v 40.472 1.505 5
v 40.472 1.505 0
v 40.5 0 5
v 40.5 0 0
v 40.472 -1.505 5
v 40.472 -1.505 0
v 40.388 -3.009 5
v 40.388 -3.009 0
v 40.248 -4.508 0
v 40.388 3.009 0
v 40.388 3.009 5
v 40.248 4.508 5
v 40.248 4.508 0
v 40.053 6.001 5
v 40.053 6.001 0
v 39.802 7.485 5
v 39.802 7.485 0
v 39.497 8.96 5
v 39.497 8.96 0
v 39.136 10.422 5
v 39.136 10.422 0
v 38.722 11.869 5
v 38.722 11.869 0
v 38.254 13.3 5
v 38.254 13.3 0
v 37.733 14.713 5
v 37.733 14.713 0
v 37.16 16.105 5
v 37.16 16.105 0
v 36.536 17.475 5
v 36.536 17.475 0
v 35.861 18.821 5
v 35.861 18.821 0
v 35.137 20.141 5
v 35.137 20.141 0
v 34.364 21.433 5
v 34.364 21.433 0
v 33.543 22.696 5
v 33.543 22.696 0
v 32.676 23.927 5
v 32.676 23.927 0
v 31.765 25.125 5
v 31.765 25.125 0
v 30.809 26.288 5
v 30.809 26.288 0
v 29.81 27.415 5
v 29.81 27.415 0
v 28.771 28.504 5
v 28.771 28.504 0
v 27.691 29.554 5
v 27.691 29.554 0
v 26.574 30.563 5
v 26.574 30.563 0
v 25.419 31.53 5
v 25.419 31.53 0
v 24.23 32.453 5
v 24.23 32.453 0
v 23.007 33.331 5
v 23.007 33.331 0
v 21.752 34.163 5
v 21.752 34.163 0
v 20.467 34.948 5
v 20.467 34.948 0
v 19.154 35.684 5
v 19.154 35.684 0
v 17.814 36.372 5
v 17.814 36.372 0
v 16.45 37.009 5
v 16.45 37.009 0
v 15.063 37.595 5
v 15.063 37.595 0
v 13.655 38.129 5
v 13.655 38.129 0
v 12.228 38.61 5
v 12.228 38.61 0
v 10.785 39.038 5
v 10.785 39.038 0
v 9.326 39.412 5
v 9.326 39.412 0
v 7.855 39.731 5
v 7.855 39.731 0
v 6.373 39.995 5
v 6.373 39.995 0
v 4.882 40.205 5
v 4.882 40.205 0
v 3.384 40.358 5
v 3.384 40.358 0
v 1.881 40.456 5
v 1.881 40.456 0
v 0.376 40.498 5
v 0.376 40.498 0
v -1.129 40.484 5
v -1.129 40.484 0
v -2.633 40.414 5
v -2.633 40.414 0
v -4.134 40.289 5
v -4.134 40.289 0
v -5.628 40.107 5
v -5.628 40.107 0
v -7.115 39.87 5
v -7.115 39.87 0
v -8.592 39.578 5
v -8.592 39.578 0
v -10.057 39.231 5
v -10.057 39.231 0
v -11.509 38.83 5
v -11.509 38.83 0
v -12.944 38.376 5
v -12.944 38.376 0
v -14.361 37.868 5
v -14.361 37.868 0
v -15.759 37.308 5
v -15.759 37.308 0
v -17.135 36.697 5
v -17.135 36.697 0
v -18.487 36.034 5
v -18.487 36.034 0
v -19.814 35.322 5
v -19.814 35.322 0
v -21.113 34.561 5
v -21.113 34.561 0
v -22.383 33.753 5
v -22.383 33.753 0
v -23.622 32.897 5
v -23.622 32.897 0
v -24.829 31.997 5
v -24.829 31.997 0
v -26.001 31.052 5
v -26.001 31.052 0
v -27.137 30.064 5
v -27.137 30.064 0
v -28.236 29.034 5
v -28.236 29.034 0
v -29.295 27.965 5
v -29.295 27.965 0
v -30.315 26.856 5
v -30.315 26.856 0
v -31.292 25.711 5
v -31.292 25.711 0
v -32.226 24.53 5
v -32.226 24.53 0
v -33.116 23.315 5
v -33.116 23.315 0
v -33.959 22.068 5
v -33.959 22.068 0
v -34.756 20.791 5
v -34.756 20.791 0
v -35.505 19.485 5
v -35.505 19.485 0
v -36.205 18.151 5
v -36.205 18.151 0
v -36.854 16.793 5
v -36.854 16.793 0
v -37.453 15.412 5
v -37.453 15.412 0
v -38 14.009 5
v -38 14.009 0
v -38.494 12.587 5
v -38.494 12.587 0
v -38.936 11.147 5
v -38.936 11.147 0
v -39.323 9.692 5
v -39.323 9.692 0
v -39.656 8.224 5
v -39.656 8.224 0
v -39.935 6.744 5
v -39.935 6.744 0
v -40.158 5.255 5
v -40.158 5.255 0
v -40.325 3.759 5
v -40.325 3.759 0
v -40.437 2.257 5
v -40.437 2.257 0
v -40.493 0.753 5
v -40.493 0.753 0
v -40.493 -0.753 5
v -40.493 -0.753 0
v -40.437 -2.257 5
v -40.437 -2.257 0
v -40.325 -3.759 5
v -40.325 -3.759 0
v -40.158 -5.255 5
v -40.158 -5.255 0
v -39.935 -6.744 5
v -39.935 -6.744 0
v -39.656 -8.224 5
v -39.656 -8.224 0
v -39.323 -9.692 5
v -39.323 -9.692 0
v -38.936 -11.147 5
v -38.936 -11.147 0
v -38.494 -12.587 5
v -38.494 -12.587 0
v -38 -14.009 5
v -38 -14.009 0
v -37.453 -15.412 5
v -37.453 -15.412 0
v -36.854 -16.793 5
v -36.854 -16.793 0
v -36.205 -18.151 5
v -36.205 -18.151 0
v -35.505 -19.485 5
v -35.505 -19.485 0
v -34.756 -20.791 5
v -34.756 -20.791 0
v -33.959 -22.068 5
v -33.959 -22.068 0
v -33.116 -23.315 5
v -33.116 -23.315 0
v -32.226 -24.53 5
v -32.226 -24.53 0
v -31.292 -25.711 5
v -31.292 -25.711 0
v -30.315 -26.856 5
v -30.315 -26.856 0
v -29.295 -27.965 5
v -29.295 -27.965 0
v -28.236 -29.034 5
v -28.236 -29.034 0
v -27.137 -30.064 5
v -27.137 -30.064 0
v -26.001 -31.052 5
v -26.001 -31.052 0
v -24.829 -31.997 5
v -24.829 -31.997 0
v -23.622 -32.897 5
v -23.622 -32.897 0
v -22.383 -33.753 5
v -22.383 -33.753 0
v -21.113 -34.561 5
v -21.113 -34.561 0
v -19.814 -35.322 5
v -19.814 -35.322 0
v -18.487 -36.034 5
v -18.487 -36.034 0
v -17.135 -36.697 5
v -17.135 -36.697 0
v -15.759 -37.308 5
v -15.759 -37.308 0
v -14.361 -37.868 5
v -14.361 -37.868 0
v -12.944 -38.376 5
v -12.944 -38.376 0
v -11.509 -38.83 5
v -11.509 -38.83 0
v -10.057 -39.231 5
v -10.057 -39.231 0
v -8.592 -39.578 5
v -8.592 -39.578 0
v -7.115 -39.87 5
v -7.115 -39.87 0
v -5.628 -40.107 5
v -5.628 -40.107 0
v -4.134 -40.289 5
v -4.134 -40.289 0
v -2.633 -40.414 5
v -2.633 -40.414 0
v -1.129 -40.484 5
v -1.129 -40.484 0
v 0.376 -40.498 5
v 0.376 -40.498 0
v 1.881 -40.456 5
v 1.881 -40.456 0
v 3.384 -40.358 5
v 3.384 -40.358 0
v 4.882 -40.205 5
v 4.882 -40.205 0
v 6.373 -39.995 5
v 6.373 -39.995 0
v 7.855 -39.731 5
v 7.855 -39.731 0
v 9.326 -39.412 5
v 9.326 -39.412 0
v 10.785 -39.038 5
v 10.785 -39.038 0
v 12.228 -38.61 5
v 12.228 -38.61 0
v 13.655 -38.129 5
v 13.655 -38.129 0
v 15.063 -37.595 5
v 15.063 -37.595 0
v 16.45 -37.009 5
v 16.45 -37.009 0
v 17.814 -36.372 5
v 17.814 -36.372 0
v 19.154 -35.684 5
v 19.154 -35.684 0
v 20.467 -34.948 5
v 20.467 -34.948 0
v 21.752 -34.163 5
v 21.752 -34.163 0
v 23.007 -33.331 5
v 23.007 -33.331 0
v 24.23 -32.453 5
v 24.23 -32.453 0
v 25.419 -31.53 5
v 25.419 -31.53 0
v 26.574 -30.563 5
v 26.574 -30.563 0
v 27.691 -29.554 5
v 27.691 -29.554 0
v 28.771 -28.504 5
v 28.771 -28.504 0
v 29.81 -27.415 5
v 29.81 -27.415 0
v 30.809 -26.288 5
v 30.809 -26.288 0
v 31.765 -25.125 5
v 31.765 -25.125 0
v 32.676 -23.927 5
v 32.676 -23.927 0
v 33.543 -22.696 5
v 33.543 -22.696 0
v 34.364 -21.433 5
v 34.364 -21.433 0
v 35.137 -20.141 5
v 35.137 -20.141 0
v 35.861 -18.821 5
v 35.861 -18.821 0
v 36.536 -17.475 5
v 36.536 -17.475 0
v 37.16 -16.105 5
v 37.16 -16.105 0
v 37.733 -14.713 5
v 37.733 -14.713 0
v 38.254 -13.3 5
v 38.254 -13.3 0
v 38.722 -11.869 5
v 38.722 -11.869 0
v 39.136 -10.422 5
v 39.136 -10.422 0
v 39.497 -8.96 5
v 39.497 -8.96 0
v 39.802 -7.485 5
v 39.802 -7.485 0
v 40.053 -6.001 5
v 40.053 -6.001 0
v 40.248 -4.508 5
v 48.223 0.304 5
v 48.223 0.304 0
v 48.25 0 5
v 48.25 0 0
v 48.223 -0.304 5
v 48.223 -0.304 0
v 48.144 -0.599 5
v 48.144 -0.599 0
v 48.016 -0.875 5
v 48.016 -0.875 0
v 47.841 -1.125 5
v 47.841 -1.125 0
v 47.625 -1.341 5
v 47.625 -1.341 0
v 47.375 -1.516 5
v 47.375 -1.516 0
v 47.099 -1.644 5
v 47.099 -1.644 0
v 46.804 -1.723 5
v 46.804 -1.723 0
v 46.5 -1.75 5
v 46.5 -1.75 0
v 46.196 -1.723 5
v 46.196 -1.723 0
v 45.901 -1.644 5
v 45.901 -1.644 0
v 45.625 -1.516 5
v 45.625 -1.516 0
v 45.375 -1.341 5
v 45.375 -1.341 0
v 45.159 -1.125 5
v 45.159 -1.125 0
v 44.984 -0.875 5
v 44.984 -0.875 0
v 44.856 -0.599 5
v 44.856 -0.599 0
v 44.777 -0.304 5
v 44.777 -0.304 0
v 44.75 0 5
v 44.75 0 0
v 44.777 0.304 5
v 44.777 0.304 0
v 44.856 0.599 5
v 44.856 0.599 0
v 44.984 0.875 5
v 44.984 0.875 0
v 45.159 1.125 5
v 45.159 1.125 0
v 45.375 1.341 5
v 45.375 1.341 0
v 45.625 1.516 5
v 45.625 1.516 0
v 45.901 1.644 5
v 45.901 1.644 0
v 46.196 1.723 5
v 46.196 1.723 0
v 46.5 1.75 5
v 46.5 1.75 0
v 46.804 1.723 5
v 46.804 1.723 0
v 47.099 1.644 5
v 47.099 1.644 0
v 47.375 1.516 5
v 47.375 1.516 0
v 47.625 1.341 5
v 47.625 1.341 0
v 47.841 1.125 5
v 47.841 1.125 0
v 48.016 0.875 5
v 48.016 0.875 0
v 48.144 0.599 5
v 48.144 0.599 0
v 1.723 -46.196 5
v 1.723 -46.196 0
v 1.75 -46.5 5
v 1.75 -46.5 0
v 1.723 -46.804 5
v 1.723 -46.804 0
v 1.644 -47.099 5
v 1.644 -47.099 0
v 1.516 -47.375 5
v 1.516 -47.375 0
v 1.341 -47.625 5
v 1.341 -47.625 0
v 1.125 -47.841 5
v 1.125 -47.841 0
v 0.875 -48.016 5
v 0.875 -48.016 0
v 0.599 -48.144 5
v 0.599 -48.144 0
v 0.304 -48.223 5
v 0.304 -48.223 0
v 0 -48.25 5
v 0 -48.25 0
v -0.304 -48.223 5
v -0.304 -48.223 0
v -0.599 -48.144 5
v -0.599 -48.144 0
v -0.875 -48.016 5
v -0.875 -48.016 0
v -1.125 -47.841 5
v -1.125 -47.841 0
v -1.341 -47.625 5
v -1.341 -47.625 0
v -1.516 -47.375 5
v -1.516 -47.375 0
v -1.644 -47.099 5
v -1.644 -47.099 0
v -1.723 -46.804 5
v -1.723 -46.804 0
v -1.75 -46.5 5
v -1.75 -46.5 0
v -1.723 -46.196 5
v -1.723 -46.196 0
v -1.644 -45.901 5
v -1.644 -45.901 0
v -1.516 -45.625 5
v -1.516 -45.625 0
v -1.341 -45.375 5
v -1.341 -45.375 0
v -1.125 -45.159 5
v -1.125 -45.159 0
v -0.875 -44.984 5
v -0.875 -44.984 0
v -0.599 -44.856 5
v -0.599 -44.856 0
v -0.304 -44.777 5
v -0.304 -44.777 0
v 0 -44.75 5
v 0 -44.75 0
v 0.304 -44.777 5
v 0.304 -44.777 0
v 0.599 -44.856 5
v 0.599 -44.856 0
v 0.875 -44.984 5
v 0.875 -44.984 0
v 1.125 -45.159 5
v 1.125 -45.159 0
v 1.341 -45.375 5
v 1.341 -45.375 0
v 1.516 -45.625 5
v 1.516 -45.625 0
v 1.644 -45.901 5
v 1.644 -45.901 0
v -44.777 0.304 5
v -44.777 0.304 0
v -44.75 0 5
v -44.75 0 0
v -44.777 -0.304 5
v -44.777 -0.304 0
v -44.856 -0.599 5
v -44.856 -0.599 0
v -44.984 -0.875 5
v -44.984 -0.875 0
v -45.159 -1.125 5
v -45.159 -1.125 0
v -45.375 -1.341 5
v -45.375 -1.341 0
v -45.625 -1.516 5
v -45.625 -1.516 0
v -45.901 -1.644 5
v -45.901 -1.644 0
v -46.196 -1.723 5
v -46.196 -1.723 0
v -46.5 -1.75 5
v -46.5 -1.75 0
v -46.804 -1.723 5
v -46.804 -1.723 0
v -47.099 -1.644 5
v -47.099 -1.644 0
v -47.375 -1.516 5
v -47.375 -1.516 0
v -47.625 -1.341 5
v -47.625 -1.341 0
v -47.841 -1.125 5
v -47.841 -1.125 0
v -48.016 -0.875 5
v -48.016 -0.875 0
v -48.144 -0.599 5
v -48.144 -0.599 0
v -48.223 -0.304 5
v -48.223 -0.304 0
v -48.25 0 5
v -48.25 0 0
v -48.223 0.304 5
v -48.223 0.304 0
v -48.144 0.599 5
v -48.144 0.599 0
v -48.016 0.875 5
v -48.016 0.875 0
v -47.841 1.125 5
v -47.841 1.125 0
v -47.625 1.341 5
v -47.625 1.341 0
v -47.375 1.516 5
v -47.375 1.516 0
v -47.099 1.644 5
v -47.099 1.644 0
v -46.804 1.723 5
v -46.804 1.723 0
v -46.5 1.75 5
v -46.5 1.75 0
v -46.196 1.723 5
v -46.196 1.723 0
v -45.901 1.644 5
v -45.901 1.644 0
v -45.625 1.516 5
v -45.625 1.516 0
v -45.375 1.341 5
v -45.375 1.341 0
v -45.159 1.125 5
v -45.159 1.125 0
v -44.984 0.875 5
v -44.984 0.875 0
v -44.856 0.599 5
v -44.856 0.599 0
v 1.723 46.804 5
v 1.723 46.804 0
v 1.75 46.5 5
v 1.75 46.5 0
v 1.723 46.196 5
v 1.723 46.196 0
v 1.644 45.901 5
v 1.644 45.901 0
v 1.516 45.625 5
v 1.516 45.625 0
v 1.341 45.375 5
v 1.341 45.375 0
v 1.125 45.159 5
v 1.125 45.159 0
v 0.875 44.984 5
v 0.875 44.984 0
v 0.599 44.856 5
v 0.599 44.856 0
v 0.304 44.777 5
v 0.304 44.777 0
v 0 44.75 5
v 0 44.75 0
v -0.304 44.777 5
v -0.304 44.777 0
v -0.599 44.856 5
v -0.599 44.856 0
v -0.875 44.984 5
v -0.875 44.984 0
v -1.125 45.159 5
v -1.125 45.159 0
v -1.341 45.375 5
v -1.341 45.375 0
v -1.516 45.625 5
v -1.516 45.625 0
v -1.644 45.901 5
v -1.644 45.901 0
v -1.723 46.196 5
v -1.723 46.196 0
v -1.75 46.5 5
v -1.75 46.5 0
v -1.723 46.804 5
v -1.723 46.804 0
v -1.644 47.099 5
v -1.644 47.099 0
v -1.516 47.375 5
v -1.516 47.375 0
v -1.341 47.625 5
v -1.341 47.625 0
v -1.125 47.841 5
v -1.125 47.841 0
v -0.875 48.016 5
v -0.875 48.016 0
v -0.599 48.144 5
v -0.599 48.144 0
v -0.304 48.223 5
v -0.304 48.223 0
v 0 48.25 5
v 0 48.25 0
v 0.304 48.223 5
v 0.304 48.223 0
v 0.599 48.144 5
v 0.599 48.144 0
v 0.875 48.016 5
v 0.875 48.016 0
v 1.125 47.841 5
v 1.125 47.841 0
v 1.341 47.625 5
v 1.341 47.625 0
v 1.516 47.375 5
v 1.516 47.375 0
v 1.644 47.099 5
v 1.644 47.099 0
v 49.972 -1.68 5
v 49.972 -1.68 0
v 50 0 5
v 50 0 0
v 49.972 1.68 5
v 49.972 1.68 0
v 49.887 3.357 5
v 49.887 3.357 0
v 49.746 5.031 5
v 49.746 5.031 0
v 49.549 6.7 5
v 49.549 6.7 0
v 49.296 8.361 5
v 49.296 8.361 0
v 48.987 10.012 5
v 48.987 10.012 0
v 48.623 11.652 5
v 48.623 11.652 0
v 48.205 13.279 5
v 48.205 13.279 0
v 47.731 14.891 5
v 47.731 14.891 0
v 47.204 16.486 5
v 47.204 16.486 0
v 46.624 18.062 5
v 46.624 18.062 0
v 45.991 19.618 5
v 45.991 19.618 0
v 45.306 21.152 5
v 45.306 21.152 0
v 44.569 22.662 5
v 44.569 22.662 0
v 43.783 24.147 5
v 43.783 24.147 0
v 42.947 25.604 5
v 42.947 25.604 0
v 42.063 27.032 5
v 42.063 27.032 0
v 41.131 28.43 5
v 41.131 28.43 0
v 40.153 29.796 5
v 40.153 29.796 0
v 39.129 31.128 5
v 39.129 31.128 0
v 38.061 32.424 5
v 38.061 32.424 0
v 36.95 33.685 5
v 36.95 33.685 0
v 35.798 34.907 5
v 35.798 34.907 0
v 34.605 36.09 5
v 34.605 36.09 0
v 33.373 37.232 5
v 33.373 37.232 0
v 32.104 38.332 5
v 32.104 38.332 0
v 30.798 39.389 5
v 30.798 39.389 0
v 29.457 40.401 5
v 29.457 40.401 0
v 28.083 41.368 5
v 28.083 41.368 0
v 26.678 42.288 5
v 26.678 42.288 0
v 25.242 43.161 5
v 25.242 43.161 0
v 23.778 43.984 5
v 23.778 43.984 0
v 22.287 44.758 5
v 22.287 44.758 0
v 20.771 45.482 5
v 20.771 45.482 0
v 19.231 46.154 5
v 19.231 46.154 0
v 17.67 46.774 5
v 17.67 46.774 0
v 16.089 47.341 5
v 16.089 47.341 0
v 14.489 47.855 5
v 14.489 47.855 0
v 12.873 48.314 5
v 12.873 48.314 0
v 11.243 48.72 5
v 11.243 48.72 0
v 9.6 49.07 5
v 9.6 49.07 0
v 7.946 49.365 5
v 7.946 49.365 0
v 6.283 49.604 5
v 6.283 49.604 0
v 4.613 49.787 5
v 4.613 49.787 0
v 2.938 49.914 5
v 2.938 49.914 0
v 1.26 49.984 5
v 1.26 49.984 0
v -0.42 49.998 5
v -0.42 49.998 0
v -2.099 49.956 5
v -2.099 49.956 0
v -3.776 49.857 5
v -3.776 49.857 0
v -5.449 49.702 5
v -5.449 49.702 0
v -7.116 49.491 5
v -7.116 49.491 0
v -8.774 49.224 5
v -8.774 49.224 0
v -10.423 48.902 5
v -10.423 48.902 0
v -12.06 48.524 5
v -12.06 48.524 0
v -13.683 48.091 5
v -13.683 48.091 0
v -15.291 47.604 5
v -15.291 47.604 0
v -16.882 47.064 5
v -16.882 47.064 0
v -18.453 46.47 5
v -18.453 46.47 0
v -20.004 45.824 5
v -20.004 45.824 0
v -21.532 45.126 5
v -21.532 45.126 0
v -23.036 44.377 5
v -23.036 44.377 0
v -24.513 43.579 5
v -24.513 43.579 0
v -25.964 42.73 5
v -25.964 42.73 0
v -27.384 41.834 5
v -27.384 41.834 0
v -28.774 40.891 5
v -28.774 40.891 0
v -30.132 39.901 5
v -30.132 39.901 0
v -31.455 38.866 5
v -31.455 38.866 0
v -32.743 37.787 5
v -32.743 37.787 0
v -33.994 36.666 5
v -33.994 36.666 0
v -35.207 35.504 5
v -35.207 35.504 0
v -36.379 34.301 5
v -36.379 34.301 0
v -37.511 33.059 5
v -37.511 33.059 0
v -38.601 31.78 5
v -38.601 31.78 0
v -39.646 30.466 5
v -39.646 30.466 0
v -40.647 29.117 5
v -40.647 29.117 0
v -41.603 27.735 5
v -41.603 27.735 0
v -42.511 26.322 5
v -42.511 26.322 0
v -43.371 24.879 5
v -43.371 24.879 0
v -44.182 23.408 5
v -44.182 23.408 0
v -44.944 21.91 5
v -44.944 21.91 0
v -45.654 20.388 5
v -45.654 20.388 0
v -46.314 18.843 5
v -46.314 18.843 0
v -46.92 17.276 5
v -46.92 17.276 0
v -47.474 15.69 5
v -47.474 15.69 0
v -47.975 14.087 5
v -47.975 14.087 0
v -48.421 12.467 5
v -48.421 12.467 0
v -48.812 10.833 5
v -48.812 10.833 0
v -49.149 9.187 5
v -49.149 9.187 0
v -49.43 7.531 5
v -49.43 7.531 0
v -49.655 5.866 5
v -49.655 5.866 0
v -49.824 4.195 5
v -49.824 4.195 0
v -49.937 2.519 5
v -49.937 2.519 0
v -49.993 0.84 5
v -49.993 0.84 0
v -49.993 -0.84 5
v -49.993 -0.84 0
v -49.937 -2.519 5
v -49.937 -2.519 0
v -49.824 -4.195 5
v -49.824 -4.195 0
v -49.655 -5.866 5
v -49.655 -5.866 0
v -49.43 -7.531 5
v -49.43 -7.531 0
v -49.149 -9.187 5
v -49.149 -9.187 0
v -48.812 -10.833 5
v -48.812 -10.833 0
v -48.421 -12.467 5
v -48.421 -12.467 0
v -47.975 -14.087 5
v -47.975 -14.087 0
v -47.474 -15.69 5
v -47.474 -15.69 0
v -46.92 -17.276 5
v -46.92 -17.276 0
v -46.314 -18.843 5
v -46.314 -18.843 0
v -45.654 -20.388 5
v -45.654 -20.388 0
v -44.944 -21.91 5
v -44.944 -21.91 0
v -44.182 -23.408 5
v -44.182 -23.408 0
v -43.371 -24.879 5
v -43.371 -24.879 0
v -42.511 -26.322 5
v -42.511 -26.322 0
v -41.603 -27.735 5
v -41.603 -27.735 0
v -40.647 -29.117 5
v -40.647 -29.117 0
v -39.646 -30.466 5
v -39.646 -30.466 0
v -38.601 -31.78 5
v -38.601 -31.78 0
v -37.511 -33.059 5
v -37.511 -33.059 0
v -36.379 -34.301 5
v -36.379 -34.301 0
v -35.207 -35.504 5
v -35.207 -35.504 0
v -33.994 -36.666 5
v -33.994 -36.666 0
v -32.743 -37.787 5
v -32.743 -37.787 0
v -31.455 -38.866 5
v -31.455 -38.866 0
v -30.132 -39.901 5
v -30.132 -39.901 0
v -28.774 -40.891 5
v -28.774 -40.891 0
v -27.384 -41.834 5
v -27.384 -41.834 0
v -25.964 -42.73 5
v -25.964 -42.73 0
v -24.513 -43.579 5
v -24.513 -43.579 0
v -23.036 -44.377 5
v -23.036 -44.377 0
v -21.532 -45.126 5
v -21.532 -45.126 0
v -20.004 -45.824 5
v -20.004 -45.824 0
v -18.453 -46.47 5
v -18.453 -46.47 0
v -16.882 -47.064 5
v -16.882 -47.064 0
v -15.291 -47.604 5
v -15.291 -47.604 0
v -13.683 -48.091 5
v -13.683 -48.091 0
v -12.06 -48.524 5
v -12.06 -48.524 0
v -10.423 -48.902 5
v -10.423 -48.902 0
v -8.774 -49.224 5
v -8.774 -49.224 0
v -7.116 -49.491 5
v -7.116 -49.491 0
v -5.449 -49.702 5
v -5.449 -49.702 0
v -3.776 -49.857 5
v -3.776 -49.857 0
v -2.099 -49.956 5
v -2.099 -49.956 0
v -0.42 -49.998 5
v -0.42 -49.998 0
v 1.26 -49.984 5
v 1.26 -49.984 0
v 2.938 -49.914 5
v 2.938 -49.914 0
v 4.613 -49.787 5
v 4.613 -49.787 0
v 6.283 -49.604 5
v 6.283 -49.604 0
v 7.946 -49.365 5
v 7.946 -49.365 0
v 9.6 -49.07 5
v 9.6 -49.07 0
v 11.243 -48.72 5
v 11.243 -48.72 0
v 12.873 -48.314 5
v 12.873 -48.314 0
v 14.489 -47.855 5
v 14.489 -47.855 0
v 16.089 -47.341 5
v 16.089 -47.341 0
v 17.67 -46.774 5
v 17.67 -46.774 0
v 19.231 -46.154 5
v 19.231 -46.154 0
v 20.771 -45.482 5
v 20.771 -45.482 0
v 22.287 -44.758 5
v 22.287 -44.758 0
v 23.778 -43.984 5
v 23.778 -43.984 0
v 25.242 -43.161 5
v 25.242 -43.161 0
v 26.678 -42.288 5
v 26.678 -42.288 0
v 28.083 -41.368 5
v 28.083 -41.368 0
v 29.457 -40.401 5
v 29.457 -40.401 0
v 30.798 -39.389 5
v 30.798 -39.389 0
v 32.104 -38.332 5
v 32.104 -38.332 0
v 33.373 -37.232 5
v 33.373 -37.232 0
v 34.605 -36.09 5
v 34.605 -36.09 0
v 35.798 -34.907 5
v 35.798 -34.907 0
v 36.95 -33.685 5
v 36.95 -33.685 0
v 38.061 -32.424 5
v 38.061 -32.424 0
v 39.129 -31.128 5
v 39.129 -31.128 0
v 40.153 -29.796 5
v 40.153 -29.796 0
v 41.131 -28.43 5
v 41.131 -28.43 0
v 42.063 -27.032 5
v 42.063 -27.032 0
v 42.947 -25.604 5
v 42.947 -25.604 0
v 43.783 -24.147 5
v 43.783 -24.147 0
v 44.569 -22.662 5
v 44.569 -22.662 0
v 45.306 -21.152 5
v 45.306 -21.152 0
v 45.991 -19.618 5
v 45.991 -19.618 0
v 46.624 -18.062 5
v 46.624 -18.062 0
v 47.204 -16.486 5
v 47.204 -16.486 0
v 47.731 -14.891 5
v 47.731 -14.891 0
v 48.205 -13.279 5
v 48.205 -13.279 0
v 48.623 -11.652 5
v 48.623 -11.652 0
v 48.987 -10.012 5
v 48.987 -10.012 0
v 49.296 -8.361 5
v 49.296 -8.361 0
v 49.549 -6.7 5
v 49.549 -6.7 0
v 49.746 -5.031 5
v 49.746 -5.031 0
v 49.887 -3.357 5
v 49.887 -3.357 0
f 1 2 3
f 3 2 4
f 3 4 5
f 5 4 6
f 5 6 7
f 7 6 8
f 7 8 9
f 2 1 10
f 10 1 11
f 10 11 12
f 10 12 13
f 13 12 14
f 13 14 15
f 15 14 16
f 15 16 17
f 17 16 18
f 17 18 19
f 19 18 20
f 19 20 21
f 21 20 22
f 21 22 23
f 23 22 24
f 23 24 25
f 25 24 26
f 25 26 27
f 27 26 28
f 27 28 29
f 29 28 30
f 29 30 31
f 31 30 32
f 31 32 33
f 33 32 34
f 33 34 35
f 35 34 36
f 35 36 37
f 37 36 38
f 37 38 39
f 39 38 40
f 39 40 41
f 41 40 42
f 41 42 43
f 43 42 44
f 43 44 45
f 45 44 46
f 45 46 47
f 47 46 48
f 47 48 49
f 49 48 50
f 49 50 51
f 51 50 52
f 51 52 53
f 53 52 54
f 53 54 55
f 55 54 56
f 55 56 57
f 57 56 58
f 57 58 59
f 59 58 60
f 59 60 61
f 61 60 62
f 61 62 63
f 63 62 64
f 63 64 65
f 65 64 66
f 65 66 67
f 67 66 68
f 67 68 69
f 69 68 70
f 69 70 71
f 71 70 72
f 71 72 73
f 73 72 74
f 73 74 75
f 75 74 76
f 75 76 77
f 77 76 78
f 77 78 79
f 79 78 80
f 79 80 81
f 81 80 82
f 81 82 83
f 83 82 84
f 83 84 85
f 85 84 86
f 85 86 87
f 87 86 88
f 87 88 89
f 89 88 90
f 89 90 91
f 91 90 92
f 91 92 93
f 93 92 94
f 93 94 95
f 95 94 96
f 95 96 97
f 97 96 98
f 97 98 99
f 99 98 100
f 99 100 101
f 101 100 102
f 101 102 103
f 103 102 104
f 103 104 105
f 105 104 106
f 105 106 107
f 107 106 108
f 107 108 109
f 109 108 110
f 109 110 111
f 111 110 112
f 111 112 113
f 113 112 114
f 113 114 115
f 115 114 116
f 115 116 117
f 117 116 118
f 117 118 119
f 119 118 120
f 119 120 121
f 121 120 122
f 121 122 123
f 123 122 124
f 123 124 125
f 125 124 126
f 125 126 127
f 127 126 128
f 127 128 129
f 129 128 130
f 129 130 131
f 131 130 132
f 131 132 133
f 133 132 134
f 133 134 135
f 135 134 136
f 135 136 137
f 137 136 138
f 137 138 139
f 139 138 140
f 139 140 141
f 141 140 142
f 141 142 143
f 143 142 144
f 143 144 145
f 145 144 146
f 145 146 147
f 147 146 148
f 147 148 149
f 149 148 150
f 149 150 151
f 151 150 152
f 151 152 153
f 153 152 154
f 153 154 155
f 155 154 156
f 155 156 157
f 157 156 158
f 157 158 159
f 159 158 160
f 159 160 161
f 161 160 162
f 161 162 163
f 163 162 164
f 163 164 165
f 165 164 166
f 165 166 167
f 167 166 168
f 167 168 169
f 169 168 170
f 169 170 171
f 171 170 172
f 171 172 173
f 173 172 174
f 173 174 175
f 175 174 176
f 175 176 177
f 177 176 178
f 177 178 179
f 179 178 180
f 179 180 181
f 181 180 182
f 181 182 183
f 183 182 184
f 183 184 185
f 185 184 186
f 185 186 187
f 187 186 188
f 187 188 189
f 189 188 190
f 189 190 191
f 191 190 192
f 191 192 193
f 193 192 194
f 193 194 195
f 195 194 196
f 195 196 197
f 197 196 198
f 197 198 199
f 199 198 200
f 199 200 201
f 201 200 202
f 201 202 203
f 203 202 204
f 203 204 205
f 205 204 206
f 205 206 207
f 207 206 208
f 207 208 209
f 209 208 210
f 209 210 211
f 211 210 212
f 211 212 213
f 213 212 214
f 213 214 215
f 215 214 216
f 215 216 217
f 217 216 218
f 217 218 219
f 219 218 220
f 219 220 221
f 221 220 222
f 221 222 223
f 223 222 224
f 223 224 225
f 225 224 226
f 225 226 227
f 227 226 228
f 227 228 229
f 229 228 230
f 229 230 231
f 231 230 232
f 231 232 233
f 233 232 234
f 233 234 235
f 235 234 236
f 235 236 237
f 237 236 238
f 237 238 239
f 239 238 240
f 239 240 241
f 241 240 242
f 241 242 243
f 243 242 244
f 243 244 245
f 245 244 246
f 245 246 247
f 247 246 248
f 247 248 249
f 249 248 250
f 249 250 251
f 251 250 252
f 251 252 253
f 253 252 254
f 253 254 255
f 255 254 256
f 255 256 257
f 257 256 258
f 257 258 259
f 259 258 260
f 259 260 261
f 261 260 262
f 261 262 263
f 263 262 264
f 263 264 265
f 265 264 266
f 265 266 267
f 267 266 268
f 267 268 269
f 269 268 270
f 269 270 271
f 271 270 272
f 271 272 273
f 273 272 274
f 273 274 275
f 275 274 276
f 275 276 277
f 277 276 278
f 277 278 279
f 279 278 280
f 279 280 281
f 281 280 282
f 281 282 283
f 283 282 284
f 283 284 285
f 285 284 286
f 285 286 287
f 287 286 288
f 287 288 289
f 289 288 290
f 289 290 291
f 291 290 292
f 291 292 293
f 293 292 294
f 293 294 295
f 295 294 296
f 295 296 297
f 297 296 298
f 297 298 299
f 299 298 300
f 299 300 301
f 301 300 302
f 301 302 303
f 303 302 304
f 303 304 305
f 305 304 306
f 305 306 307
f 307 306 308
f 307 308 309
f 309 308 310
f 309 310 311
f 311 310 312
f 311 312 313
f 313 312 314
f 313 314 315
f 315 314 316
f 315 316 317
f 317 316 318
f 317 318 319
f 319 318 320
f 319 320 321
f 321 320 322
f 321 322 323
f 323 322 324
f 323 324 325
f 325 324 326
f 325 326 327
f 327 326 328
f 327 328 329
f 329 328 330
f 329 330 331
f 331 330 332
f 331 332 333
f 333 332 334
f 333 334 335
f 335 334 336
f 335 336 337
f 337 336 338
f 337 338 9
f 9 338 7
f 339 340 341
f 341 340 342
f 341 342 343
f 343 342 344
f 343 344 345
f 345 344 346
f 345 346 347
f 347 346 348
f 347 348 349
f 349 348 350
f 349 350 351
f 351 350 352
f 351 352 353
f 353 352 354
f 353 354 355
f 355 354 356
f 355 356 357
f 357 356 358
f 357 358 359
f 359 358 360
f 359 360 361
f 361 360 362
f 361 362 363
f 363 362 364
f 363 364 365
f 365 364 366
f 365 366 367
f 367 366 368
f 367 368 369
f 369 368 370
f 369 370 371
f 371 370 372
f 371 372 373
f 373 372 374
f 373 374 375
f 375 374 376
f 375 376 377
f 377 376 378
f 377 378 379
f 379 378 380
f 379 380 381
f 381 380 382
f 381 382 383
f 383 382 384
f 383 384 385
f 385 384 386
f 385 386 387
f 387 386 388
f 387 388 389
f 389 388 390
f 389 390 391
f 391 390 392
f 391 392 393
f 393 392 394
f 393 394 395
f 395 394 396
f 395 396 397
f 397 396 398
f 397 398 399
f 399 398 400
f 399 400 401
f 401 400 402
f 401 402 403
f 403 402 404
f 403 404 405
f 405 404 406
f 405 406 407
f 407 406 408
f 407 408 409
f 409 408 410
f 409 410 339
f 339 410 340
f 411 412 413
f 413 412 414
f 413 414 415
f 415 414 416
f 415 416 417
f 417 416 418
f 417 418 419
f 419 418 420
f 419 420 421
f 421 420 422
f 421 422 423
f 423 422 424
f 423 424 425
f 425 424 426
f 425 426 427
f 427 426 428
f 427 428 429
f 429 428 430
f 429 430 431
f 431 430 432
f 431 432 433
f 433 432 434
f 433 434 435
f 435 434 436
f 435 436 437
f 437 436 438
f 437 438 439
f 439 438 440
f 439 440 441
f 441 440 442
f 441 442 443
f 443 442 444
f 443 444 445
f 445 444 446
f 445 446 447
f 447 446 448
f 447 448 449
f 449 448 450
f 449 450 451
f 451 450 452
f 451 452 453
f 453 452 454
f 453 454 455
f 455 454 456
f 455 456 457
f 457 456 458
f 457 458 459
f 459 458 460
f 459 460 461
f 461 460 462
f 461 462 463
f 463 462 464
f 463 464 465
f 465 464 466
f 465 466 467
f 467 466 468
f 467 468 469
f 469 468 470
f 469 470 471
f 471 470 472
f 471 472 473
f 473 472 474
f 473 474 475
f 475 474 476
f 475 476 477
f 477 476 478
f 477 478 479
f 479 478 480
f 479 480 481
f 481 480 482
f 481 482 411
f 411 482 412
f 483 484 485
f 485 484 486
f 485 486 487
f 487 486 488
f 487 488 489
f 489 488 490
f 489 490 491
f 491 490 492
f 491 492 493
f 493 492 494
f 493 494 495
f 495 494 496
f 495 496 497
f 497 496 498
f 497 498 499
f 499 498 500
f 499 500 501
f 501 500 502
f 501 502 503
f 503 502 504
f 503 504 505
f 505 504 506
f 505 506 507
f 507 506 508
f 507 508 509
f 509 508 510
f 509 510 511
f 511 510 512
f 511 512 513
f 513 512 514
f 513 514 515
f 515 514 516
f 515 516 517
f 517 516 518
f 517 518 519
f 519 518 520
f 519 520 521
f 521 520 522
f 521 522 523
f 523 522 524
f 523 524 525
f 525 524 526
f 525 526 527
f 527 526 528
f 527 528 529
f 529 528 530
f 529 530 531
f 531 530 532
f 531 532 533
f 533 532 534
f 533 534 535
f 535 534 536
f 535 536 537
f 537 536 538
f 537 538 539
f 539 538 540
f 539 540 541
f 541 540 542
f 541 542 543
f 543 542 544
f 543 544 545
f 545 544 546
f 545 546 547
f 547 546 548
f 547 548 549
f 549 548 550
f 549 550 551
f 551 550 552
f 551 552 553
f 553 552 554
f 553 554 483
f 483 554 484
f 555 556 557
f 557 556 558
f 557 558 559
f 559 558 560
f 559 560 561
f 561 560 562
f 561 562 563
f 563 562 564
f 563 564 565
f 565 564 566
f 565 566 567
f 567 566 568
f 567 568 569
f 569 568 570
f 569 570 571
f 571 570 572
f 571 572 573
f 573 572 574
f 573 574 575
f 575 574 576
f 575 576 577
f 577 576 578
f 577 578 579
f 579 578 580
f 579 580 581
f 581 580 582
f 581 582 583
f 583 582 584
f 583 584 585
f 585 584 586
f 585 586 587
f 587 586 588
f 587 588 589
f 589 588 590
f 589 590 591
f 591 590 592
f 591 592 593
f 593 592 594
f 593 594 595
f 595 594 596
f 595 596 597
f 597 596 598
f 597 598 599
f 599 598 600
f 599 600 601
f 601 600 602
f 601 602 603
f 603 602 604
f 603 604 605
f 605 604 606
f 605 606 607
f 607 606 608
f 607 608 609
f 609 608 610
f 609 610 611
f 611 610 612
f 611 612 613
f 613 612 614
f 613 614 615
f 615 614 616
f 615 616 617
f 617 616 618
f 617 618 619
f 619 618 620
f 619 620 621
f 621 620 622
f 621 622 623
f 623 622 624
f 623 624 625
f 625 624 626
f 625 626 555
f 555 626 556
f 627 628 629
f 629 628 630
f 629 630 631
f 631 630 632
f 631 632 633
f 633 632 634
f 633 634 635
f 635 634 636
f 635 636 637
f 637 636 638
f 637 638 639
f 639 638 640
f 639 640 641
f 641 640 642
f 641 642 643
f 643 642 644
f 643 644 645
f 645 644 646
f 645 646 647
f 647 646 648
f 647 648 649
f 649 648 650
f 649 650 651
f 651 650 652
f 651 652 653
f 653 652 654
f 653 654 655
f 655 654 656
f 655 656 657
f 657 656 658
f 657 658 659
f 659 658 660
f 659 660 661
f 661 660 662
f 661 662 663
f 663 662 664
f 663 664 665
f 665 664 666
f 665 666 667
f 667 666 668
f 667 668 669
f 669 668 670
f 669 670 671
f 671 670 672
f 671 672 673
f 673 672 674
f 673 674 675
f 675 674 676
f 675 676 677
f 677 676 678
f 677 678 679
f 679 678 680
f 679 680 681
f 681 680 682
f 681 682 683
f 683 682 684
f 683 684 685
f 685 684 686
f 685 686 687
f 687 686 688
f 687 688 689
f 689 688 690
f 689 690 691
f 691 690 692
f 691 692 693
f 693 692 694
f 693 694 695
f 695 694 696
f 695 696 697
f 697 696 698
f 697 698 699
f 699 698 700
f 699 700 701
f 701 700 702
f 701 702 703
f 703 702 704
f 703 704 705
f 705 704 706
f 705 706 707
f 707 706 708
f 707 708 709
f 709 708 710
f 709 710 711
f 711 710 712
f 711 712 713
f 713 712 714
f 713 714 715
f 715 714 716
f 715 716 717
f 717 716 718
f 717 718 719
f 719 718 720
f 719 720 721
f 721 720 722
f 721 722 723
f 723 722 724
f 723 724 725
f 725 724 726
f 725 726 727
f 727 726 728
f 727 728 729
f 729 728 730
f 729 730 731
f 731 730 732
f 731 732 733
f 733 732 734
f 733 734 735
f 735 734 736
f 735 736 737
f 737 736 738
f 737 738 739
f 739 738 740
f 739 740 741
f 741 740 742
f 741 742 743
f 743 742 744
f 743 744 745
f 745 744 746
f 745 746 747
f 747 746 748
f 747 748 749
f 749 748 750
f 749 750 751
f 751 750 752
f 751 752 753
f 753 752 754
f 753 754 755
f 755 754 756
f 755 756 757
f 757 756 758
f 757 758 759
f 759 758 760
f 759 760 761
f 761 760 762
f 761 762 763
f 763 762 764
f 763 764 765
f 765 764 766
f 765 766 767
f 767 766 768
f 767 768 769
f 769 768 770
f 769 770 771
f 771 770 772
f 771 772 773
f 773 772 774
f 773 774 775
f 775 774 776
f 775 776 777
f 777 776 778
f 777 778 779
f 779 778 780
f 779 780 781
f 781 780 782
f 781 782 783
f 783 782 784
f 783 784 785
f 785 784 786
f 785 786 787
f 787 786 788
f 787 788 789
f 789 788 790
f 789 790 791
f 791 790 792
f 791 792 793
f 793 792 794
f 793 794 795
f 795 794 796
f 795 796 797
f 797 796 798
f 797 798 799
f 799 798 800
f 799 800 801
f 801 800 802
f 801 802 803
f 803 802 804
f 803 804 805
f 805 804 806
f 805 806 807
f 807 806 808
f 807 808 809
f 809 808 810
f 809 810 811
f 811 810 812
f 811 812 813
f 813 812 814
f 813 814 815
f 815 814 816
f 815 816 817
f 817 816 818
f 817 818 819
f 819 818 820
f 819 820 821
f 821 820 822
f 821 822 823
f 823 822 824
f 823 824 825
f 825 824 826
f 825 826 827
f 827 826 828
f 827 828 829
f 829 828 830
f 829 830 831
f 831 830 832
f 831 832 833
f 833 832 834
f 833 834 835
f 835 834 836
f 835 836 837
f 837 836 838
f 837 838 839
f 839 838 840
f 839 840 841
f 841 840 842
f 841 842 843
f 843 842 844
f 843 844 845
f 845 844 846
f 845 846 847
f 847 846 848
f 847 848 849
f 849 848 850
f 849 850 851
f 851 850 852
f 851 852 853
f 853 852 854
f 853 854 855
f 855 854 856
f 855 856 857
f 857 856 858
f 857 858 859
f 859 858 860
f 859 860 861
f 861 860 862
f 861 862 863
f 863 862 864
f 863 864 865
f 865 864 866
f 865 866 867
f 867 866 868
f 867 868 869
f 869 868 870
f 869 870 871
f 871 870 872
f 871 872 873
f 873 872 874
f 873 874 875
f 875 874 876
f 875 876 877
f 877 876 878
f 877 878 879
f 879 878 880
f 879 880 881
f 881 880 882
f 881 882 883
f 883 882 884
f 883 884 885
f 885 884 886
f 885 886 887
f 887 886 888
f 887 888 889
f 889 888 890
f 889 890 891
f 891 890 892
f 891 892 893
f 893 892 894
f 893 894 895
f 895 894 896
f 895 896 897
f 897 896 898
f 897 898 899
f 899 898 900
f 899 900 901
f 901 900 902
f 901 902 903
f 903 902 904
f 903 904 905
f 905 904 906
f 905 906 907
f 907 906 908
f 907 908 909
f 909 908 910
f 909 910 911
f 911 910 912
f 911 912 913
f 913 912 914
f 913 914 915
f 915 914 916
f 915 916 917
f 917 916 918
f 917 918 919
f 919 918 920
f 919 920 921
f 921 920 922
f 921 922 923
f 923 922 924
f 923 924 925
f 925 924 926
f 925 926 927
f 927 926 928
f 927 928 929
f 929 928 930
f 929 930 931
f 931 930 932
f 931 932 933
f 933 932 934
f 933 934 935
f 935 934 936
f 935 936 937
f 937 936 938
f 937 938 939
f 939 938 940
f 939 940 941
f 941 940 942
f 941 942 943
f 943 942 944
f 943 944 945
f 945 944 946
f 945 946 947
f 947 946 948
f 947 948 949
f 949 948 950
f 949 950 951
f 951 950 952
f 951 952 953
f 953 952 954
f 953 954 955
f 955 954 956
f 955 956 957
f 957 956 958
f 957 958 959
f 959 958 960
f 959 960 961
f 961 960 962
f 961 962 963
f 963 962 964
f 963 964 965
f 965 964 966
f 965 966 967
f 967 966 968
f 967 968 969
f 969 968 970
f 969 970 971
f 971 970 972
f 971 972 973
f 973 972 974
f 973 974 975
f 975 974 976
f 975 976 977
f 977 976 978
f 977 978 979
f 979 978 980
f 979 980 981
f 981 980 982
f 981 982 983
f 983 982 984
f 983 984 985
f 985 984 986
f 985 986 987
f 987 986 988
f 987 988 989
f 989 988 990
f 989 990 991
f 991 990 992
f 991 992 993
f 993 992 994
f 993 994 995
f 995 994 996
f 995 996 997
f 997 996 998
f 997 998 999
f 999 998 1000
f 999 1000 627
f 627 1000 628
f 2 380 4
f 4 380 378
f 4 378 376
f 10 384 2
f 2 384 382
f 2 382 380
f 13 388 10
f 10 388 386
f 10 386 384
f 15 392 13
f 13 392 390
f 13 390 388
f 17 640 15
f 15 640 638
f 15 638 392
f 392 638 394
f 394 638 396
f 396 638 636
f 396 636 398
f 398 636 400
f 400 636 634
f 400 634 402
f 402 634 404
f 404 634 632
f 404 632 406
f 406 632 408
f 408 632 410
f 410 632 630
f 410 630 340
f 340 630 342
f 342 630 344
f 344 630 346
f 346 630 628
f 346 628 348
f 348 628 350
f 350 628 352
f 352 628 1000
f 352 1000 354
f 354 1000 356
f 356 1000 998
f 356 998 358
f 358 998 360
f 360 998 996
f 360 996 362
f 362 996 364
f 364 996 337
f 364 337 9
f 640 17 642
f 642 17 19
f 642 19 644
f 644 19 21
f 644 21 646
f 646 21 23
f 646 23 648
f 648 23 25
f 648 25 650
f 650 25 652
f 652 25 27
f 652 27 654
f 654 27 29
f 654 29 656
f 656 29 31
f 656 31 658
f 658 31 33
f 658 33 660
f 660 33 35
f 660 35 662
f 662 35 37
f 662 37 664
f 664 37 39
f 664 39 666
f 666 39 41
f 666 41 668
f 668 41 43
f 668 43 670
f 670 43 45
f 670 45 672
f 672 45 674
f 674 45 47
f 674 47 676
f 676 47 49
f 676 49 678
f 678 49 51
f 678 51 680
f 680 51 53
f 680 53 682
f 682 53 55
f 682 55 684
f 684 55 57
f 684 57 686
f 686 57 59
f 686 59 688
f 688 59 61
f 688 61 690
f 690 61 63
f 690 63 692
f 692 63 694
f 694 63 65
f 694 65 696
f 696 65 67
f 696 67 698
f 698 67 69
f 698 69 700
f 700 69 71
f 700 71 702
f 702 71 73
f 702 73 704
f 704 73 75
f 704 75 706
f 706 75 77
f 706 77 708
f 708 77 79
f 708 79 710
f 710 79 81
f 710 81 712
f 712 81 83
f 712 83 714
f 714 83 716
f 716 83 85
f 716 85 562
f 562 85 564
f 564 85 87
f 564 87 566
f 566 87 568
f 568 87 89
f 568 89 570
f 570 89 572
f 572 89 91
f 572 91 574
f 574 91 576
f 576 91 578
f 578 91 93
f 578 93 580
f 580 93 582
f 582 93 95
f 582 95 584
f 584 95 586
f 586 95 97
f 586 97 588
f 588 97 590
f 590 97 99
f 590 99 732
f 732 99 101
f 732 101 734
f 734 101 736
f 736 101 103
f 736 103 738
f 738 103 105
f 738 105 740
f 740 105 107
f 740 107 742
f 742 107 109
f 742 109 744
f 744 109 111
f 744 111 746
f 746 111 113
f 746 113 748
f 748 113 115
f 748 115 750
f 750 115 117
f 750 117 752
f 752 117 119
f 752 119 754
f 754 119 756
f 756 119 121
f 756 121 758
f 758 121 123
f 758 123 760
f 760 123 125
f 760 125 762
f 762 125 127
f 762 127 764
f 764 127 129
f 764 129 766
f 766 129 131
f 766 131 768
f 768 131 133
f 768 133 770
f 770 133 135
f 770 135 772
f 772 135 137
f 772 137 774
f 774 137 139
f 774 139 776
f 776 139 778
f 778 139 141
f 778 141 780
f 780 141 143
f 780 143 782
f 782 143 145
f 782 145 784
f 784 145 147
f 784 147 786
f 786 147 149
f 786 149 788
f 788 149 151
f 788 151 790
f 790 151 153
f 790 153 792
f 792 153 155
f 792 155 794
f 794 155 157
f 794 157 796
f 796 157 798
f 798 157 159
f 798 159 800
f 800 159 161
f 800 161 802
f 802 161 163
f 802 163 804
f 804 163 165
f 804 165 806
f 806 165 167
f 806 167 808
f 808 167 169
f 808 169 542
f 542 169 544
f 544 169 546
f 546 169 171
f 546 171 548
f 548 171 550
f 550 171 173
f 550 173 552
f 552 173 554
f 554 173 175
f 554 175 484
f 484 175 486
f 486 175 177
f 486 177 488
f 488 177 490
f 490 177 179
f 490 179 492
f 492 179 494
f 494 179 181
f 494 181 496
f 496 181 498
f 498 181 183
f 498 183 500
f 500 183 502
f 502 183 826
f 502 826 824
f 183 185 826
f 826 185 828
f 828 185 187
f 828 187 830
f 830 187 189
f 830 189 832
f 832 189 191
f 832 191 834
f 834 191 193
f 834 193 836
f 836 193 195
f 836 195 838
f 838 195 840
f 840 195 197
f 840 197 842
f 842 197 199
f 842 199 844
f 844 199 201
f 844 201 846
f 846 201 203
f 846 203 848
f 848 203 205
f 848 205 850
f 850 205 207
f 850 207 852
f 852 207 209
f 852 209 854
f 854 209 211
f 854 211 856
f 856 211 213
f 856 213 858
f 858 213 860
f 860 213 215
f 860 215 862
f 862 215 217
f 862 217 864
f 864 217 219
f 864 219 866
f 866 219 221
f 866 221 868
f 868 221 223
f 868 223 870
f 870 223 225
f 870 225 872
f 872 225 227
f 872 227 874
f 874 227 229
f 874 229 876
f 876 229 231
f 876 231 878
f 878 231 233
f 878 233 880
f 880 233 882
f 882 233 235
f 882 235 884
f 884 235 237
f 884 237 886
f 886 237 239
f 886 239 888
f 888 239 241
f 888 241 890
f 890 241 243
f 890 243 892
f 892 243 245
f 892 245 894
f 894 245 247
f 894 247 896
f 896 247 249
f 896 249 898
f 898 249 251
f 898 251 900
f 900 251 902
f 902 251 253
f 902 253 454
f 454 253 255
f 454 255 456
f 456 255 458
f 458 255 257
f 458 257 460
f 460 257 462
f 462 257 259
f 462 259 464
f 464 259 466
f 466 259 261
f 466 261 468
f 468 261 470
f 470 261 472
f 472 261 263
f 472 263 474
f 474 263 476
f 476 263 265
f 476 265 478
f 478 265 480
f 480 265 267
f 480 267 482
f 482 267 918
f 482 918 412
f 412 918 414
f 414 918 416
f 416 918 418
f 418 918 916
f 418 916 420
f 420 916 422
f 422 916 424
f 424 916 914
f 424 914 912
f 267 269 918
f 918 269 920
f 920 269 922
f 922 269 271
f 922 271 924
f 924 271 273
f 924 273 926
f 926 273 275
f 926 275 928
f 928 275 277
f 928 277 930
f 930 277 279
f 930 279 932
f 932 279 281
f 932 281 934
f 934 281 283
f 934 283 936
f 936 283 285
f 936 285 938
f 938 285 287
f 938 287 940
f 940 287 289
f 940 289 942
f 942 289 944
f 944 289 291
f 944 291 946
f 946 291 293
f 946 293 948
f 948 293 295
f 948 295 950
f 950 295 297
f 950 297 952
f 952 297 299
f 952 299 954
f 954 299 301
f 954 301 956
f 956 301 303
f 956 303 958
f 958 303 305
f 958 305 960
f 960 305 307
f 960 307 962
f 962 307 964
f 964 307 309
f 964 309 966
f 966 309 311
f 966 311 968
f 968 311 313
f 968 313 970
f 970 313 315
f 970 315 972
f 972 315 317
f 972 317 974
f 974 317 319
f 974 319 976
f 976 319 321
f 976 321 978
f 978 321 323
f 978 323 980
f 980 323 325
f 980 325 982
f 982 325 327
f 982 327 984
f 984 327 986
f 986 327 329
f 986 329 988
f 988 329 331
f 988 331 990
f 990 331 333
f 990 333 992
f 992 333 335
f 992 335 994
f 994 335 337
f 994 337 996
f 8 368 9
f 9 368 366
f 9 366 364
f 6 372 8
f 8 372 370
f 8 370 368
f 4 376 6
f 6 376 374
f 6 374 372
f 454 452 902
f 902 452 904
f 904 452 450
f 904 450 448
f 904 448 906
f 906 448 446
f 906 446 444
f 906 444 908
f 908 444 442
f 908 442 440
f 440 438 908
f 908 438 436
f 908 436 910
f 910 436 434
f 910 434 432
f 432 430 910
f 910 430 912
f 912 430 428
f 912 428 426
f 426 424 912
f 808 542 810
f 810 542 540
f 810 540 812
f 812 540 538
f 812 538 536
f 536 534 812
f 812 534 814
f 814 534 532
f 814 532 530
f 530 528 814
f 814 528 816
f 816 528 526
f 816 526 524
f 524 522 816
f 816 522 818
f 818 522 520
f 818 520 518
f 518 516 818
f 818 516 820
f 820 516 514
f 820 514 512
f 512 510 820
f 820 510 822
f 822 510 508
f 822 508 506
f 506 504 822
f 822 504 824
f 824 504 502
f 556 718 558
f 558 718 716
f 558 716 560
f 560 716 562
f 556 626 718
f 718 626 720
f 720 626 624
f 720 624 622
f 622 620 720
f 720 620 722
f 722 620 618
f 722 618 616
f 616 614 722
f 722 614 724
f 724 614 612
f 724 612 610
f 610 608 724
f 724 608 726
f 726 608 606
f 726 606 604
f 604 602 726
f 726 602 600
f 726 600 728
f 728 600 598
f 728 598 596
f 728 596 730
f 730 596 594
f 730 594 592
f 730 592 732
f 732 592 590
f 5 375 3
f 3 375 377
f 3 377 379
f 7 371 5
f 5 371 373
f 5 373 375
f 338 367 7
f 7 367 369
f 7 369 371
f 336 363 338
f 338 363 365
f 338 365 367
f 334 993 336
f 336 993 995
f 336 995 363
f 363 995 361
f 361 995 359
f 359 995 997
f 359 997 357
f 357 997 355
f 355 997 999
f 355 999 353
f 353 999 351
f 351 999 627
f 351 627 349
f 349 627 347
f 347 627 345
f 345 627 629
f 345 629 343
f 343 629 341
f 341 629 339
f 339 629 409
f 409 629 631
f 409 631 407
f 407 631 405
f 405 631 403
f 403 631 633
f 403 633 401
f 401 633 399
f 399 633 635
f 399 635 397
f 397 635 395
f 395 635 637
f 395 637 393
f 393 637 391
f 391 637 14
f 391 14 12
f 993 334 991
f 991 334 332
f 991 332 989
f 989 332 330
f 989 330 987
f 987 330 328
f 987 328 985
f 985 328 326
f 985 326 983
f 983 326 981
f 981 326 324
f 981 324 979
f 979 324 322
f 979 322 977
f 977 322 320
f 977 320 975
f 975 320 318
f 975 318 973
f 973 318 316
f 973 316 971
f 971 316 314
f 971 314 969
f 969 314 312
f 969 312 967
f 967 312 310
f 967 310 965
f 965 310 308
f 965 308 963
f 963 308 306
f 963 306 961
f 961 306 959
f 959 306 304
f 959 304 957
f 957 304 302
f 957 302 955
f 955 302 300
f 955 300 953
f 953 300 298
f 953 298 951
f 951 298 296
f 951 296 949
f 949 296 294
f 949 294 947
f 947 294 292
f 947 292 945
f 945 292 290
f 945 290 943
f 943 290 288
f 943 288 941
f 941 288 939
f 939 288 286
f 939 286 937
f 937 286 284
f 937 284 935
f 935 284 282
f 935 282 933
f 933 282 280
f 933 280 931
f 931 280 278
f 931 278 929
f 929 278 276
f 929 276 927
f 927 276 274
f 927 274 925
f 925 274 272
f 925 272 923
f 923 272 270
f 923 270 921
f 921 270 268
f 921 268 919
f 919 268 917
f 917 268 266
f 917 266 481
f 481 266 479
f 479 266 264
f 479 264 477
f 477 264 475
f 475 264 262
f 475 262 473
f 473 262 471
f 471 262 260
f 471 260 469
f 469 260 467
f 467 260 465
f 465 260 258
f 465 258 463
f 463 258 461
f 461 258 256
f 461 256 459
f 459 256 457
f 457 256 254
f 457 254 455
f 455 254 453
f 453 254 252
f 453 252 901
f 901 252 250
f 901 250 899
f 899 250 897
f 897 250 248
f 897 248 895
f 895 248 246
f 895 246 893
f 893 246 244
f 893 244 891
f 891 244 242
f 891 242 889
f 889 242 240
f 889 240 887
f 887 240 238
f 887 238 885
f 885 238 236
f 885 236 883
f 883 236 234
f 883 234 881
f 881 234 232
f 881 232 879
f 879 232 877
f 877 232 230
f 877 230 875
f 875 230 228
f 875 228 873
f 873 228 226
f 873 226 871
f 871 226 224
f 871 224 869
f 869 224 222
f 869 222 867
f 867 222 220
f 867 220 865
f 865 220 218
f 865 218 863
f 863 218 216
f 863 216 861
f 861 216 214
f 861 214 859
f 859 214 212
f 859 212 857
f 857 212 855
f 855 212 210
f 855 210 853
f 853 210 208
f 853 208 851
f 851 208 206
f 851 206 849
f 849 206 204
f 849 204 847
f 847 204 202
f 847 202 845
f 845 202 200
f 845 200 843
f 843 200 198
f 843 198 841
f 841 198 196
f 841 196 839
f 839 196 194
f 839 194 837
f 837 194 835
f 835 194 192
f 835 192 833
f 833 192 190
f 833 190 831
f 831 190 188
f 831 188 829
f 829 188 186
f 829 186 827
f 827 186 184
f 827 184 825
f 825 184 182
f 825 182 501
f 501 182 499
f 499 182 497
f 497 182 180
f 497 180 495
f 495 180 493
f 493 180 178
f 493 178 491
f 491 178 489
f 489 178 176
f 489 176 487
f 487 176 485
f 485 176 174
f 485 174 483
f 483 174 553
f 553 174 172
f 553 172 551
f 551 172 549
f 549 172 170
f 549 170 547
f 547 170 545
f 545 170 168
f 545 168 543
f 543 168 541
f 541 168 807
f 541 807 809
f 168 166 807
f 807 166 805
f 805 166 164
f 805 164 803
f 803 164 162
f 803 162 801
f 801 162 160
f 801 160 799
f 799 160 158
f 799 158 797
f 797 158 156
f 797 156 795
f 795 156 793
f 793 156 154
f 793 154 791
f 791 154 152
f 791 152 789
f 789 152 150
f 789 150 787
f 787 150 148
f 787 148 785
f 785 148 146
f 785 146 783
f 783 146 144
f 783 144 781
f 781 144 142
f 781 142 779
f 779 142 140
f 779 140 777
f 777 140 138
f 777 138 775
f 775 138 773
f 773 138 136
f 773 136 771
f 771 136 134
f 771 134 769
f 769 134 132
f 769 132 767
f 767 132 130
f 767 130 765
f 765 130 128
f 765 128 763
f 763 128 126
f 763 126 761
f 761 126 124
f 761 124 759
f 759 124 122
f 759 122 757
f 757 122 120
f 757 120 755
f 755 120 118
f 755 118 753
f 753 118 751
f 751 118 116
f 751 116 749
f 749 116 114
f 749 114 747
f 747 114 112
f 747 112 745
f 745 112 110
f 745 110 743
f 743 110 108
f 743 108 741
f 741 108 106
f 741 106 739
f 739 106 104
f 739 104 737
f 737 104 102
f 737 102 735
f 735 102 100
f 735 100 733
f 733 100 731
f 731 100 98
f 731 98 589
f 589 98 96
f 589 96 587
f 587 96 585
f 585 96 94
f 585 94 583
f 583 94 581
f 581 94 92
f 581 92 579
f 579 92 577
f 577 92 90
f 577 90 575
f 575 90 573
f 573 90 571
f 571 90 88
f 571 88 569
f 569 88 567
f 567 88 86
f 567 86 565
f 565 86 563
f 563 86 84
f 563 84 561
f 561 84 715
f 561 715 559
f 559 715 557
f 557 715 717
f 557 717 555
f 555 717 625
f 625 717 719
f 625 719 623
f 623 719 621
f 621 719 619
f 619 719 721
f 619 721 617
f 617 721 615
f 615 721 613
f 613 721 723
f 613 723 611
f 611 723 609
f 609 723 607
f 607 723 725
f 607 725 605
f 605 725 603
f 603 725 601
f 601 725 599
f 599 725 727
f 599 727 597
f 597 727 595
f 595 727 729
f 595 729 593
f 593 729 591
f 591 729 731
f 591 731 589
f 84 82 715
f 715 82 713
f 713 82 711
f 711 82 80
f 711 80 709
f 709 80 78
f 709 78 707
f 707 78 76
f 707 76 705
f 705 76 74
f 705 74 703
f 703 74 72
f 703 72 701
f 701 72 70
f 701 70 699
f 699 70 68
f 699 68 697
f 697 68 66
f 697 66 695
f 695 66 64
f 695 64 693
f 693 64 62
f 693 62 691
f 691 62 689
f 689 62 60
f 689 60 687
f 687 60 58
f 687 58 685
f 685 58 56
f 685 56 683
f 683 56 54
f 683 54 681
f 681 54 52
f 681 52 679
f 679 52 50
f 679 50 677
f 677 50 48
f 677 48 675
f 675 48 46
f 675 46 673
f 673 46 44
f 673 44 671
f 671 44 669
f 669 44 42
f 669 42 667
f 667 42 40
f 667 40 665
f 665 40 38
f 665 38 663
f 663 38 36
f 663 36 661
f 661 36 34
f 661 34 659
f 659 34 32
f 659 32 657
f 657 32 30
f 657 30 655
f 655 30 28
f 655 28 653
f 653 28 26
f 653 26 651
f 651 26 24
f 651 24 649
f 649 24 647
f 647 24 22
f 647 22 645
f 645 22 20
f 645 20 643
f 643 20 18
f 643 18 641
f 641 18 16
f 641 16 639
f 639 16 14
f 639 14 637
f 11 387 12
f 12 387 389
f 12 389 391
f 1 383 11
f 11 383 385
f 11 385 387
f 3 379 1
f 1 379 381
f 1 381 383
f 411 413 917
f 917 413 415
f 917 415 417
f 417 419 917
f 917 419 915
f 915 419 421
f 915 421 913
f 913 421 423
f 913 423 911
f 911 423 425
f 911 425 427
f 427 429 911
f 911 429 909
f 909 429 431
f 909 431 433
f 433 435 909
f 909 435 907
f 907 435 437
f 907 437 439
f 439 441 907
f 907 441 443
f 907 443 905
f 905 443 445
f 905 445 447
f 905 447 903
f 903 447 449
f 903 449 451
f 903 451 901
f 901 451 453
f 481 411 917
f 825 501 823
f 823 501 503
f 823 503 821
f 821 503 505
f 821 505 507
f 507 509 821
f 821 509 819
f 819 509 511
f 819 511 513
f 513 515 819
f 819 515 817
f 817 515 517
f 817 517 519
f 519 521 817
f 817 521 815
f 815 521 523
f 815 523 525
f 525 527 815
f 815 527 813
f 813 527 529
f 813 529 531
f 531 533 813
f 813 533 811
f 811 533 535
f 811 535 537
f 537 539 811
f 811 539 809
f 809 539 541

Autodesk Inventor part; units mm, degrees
ref_plane "YZ Plane" through (0, 0, 0) normal (1, 0, 0) x (0, 1, 0)
ref_plane "XZ Plane" through (0, 0, 0) normal (0, 1, 0) x (-1, 0, 0)
ref_plane "XY Plane" through (0, 0, 0) normal (0, 0, 1) x (1, 0, 0)
sketch "Sketch1" plane through (0, 0, 0) normal (0, 0, 1) x (1, 0, 0)
  circle A0 centre (0, 0) radius 40.5
  circle A1 centre (0, 0) radius 43
  circle A2 centre (0, 0) radius 50
  line L0 (0, 50) -> (0, 43)
  circle A3 centre (0, 46.5) radius 1.75
  circle A4 centre (-46.5, 0) radius 1.75
  circle A5 centre (0, -46.5) radius 1.75
  circle A6 centre (46.5, 0) radius 1.75
  dimension "d1" = 86
  dimension "d2" = 100
  dimension "d0" = 81
  dimension "d3" = 3.5
  dimension "d6" = 360
extrude "Extrusion1" add sketch "Sketch1" along normal blind 5 contours A1 | A2
properties part number "rotBase"
